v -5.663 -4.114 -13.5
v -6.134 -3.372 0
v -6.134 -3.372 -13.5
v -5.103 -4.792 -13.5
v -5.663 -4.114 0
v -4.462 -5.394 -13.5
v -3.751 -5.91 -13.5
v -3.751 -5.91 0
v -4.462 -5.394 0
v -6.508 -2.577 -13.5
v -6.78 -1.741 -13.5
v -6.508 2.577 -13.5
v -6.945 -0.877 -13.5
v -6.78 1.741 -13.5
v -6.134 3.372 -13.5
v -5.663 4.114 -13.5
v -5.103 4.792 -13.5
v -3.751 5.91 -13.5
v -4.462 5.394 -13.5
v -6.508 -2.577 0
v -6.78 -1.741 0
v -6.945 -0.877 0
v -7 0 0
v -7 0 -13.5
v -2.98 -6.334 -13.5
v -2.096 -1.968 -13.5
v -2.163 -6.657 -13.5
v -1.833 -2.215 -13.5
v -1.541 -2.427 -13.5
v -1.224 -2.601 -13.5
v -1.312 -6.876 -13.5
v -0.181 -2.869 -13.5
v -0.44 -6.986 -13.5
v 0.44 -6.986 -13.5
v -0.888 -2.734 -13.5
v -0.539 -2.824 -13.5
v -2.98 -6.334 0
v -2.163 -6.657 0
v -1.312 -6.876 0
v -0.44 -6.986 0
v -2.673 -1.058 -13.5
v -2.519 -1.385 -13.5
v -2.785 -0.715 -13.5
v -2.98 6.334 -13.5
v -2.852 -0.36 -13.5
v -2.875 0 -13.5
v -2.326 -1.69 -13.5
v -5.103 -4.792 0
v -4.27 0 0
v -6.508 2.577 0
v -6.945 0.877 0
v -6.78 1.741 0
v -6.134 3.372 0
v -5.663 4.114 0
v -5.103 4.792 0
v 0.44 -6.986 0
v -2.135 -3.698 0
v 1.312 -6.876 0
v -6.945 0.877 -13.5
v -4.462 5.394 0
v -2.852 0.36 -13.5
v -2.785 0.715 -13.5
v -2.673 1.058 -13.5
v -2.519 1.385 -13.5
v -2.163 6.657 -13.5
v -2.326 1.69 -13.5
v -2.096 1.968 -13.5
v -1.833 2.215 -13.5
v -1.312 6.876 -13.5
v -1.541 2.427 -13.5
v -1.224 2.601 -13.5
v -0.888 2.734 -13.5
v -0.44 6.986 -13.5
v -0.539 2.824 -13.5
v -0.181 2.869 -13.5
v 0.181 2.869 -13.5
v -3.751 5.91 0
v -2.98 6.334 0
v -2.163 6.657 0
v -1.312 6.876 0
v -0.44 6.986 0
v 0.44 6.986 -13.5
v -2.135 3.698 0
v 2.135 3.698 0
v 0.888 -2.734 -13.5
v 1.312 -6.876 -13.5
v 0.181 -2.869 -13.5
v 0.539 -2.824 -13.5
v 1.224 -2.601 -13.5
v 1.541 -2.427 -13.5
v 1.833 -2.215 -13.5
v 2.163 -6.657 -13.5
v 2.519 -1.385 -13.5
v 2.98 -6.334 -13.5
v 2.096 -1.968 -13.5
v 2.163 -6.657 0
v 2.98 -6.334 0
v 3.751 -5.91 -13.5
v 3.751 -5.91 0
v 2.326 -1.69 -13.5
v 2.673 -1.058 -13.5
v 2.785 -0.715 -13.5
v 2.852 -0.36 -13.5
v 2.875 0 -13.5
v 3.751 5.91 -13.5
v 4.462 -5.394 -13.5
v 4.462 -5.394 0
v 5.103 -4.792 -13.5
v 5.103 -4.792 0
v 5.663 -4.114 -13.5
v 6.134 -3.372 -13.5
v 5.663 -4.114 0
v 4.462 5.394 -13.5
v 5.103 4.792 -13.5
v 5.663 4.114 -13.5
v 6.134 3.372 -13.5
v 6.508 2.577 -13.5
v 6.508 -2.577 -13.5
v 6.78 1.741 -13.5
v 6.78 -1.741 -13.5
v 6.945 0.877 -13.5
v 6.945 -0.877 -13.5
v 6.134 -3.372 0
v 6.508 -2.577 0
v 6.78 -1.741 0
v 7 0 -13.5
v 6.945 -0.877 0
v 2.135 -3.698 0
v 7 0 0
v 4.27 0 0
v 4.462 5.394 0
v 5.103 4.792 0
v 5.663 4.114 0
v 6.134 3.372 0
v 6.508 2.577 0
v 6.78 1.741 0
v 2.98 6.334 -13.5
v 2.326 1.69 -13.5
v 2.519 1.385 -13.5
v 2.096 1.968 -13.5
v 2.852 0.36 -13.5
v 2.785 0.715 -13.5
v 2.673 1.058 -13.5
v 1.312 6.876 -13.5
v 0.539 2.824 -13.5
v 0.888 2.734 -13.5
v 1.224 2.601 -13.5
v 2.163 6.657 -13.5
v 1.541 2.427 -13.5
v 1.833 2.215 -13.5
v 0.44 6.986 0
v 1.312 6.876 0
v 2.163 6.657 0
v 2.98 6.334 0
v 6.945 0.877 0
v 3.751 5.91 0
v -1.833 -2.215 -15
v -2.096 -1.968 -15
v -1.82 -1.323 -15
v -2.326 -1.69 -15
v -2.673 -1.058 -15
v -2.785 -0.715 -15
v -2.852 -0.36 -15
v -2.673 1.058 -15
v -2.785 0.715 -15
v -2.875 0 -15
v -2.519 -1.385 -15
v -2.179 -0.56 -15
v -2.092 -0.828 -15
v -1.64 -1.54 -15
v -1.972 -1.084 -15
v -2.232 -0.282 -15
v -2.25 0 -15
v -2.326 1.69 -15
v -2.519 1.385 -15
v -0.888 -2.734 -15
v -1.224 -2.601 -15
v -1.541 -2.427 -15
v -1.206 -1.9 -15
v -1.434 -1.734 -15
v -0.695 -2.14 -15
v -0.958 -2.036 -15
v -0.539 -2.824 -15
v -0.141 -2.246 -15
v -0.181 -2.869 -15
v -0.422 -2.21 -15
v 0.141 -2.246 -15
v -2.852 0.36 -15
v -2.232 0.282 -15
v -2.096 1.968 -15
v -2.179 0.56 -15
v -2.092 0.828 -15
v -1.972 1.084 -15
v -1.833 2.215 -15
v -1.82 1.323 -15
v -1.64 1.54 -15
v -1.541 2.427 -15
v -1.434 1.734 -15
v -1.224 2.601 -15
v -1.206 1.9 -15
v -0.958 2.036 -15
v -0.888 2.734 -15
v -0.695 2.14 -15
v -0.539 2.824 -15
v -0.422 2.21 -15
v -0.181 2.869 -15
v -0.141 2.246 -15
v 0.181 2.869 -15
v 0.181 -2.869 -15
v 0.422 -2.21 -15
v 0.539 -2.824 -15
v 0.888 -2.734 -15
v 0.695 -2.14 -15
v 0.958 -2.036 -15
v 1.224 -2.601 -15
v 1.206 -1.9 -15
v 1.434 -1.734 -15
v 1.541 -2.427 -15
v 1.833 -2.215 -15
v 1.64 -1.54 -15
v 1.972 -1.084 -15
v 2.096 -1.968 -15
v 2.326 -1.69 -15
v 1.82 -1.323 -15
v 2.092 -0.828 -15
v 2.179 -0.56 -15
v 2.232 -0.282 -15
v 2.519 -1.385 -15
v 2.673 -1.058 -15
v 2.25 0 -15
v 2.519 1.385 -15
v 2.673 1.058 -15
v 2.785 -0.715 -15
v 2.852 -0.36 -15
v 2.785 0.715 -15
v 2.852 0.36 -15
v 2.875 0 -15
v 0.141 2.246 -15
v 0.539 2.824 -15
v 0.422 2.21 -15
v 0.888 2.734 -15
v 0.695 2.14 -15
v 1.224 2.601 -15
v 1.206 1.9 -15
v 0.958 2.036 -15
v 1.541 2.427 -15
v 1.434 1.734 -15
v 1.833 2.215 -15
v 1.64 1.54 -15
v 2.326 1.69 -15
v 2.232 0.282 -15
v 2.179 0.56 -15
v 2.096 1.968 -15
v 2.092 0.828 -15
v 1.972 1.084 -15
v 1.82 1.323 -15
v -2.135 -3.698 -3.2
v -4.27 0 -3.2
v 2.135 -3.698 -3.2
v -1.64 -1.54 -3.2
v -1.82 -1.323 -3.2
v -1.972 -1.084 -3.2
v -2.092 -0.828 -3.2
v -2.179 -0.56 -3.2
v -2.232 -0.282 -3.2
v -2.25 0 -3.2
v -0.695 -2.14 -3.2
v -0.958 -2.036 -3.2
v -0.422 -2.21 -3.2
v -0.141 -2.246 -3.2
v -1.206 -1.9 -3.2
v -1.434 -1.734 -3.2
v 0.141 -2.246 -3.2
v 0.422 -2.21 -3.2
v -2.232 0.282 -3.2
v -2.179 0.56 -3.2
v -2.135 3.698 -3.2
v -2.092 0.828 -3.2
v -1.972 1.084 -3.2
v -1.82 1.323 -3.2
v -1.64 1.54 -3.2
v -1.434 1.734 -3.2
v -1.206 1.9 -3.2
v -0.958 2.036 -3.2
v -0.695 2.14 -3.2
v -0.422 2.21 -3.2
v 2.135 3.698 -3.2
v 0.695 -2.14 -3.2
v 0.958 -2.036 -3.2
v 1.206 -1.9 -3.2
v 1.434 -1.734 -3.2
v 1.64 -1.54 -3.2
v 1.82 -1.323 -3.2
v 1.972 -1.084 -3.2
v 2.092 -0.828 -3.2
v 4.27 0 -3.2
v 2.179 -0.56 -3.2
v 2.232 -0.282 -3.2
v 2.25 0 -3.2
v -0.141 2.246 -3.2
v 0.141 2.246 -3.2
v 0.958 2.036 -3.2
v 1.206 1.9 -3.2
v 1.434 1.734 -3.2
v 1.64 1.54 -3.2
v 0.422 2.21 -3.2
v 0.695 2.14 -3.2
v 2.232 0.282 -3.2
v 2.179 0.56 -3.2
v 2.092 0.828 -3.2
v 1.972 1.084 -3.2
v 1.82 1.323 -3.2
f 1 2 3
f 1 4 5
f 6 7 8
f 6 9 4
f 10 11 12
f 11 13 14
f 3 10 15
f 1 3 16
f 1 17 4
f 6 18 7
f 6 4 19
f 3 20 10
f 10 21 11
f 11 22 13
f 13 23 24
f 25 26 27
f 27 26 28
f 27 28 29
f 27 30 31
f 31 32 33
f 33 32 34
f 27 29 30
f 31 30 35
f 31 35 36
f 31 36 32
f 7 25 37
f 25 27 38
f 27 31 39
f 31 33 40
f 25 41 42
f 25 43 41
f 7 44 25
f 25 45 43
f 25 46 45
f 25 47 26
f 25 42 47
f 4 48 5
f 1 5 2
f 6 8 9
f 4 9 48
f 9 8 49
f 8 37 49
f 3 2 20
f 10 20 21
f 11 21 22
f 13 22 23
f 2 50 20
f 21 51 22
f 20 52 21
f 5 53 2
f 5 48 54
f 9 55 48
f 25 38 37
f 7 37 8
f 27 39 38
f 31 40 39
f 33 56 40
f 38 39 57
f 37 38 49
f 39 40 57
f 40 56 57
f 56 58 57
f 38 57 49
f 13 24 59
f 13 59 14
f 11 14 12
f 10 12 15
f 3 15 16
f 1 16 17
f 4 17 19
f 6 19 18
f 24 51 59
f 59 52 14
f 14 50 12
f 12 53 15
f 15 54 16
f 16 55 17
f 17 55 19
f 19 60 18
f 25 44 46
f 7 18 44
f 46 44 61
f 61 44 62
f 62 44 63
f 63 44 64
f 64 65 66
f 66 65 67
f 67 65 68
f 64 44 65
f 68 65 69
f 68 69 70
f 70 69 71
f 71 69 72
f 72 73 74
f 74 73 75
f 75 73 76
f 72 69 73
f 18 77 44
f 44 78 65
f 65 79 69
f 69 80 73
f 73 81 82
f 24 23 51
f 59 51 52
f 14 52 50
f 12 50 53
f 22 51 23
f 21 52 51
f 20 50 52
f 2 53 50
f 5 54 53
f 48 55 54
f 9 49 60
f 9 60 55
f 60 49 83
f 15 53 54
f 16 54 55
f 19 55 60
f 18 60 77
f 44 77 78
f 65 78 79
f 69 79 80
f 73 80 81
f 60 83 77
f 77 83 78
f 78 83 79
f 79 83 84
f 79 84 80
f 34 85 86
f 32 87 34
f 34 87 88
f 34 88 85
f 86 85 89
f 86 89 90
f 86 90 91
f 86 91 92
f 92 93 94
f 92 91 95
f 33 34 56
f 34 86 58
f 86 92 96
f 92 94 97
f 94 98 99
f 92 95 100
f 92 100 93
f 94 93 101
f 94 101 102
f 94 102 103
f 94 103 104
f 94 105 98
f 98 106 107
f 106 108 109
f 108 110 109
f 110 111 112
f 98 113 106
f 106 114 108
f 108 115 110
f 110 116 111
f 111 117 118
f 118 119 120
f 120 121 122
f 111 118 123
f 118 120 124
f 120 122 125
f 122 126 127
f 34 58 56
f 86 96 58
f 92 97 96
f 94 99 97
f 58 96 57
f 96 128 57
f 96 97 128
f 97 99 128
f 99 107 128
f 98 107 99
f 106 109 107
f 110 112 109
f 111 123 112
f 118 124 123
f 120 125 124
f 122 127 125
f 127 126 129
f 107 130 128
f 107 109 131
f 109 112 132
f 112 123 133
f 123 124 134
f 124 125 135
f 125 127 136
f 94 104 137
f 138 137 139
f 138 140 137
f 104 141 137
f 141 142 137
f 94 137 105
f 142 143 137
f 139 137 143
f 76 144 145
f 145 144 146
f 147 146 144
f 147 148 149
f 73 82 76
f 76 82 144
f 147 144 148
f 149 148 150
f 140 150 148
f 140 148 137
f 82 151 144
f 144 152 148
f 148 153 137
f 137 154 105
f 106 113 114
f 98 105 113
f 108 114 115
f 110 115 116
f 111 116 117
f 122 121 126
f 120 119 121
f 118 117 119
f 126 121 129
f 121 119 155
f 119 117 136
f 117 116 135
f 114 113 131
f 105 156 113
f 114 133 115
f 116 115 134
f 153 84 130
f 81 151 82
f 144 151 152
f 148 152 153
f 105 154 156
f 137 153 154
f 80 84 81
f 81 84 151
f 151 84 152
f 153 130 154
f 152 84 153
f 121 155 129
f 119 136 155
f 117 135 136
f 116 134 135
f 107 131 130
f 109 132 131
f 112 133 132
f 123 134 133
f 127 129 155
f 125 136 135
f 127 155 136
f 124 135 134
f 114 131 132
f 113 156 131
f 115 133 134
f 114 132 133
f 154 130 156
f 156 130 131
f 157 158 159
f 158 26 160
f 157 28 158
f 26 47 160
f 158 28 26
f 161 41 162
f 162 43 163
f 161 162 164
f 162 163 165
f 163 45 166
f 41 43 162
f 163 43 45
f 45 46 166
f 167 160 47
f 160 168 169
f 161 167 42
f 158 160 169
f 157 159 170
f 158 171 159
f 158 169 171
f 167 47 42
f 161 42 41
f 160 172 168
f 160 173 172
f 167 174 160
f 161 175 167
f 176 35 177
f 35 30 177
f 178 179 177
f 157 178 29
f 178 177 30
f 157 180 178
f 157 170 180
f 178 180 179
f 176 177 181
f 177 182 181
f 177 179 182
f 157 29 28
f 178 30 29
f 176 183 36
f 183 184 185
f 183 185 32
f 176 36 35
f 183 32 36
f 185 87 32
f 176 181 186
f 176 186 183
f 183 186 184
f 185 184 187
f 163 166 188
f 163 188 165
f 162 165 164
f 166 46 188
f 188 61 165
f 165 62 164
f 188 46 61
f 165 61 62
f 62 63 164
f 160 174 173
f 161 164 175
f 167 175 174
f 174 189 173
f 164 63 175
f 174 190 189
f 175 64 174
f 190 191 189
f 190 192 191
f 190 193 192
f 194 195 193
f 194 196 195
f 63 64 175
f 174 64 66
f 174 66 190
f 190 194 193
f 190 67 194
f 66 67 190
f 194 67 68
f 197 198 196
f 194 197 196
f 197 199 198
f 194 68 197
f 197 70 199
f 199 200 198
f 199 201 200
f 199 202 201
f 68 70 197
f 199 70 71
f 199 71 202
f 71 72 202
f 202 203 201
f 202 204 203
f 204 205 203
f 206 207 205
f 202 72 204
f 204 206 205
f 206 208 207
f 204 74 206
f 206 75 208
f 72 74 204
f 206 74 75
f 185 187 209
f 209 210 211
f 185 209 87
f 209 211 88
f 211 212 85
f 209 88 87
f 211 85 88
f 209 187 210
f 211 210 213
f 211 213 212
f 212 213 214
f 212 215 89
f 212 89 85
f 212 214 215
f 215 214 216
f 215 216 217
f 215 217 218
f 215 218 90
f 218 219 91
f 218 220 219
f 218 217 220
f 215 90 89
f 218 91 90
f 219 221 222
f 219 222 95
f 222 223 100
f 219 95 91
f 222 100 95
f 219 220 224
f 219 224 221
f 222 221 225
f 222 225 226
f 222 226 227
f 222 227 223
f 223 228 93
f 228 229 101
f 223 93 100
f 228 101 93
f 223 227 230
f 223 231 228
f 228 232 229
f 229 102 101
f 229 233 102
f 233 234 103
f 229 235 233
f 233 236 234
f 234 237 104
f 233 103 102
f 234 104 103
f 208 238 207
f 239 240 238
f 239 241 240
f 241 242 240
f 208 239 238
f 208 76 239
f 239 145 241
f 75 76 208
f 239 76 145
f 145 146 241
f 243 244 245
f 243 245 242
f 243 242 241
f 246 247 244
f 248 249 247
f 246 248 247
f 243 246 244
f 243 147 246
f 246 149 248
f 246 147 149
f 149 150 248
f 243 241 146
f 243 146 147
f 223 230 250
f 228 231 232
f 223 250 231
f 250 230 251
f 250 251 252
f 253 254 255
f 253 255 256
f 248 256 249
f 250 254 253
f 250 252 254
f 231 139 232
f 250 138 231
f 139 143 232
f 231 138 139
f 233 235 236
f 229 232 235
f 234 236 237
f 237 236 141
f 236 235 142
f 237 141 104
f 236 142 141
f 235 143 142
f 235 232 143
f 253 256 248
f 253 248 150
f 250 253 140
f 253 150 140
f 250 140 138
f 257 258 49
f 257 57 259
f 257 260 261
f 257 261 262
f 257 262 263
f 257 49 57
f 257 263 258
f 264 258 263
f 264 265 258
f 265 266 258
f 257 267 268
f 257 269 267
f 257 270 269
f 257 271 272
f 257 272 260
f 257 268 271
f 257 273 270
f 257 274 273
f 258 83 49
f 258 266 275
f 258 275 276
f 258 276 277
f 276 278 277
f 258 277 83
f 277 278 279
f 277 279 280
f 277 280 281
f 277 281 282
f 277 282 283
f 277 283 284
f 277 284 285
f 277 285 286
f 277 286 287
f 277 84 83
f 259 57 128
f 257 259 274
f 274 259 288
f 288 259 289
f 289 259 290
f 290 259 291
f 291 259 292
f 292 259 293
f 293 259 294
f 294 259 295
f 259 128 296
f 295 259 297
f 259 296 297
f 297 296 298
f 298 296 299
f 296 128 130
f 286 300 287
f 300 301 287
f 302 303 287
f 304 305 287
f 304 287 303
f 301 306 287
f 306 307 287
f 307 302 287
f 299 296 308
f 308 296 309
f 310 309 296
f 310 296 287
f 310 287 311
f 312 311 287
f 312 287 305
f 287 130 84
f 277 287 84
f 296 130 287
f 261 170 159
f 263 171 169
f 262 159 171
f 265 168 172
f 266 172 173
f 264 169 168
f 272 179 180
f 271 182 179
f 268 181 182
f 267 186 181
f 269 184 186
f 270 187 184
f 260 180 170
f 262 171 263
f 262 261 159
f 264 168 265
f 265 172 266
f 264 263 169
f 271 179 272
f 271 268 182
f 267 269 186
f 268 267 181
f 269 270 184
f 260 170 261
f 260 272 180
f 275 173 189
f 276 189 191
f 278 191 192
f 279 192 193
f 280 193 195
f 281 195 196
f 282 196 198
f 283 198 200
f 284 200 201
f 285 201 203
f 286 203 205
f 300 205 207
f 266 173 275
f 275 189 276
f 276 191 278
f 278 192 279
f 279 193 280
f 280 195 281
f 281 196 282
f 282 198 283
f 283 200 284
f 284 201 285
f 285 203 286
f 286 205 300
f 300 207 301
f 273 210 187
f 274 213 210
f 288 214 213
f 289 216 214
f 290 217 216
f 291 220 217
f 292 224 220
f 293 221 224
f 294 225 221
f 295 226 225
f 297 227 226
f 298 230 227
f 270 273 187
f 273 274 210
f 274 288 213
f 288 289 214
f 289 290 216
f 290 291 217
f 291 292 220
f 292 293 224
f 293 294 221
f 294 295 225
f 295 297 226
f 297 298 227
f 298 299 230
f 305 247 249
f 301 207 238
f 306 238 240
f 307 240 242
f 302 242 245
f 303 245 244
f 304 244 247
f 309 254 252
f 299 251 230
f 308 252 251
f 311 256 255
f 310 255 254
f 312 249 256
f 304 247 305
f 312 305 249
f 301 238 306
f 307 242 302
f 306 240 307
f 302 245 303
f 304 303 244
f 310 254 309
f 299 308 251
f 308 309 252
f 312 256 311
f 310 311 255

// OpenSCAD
$fn = 50;

difference() {
	union() {
		translate(v = [0, 0, -13.5]) {
			cylinder(h = 13.5, r = 7.0);
		}
		#translate(v = [0, 0, -15.0]) {
			cylinder(h = 15, r = 2.875);
		}
	}
	union() {
		translate(v = [0, 0, 0]) {
			rotate(a = [0, 0, 0]) {
				difference() {
					union() {
						translate(v = [0, 0, -3.2]) {
							linear_extrude(height = 3.2) {
								polygon(points = [[4.2698, 0.0], [2.1349000000000005, 3.697755269078796], [-2.134899999999999, 3.6977552690787965], [-4.2698, 5.228996902999369e-16], [-2.134900000000002, -3.6977552690787956], [2.1348999999999974, -3.697755269078798]]);
							}
						}
					}
					union();
				}
			}
		}
		#translate(v = [0, 0, -100.0]) {
			cylinder(h = 200, r = 2.25);
		}
	}
}
